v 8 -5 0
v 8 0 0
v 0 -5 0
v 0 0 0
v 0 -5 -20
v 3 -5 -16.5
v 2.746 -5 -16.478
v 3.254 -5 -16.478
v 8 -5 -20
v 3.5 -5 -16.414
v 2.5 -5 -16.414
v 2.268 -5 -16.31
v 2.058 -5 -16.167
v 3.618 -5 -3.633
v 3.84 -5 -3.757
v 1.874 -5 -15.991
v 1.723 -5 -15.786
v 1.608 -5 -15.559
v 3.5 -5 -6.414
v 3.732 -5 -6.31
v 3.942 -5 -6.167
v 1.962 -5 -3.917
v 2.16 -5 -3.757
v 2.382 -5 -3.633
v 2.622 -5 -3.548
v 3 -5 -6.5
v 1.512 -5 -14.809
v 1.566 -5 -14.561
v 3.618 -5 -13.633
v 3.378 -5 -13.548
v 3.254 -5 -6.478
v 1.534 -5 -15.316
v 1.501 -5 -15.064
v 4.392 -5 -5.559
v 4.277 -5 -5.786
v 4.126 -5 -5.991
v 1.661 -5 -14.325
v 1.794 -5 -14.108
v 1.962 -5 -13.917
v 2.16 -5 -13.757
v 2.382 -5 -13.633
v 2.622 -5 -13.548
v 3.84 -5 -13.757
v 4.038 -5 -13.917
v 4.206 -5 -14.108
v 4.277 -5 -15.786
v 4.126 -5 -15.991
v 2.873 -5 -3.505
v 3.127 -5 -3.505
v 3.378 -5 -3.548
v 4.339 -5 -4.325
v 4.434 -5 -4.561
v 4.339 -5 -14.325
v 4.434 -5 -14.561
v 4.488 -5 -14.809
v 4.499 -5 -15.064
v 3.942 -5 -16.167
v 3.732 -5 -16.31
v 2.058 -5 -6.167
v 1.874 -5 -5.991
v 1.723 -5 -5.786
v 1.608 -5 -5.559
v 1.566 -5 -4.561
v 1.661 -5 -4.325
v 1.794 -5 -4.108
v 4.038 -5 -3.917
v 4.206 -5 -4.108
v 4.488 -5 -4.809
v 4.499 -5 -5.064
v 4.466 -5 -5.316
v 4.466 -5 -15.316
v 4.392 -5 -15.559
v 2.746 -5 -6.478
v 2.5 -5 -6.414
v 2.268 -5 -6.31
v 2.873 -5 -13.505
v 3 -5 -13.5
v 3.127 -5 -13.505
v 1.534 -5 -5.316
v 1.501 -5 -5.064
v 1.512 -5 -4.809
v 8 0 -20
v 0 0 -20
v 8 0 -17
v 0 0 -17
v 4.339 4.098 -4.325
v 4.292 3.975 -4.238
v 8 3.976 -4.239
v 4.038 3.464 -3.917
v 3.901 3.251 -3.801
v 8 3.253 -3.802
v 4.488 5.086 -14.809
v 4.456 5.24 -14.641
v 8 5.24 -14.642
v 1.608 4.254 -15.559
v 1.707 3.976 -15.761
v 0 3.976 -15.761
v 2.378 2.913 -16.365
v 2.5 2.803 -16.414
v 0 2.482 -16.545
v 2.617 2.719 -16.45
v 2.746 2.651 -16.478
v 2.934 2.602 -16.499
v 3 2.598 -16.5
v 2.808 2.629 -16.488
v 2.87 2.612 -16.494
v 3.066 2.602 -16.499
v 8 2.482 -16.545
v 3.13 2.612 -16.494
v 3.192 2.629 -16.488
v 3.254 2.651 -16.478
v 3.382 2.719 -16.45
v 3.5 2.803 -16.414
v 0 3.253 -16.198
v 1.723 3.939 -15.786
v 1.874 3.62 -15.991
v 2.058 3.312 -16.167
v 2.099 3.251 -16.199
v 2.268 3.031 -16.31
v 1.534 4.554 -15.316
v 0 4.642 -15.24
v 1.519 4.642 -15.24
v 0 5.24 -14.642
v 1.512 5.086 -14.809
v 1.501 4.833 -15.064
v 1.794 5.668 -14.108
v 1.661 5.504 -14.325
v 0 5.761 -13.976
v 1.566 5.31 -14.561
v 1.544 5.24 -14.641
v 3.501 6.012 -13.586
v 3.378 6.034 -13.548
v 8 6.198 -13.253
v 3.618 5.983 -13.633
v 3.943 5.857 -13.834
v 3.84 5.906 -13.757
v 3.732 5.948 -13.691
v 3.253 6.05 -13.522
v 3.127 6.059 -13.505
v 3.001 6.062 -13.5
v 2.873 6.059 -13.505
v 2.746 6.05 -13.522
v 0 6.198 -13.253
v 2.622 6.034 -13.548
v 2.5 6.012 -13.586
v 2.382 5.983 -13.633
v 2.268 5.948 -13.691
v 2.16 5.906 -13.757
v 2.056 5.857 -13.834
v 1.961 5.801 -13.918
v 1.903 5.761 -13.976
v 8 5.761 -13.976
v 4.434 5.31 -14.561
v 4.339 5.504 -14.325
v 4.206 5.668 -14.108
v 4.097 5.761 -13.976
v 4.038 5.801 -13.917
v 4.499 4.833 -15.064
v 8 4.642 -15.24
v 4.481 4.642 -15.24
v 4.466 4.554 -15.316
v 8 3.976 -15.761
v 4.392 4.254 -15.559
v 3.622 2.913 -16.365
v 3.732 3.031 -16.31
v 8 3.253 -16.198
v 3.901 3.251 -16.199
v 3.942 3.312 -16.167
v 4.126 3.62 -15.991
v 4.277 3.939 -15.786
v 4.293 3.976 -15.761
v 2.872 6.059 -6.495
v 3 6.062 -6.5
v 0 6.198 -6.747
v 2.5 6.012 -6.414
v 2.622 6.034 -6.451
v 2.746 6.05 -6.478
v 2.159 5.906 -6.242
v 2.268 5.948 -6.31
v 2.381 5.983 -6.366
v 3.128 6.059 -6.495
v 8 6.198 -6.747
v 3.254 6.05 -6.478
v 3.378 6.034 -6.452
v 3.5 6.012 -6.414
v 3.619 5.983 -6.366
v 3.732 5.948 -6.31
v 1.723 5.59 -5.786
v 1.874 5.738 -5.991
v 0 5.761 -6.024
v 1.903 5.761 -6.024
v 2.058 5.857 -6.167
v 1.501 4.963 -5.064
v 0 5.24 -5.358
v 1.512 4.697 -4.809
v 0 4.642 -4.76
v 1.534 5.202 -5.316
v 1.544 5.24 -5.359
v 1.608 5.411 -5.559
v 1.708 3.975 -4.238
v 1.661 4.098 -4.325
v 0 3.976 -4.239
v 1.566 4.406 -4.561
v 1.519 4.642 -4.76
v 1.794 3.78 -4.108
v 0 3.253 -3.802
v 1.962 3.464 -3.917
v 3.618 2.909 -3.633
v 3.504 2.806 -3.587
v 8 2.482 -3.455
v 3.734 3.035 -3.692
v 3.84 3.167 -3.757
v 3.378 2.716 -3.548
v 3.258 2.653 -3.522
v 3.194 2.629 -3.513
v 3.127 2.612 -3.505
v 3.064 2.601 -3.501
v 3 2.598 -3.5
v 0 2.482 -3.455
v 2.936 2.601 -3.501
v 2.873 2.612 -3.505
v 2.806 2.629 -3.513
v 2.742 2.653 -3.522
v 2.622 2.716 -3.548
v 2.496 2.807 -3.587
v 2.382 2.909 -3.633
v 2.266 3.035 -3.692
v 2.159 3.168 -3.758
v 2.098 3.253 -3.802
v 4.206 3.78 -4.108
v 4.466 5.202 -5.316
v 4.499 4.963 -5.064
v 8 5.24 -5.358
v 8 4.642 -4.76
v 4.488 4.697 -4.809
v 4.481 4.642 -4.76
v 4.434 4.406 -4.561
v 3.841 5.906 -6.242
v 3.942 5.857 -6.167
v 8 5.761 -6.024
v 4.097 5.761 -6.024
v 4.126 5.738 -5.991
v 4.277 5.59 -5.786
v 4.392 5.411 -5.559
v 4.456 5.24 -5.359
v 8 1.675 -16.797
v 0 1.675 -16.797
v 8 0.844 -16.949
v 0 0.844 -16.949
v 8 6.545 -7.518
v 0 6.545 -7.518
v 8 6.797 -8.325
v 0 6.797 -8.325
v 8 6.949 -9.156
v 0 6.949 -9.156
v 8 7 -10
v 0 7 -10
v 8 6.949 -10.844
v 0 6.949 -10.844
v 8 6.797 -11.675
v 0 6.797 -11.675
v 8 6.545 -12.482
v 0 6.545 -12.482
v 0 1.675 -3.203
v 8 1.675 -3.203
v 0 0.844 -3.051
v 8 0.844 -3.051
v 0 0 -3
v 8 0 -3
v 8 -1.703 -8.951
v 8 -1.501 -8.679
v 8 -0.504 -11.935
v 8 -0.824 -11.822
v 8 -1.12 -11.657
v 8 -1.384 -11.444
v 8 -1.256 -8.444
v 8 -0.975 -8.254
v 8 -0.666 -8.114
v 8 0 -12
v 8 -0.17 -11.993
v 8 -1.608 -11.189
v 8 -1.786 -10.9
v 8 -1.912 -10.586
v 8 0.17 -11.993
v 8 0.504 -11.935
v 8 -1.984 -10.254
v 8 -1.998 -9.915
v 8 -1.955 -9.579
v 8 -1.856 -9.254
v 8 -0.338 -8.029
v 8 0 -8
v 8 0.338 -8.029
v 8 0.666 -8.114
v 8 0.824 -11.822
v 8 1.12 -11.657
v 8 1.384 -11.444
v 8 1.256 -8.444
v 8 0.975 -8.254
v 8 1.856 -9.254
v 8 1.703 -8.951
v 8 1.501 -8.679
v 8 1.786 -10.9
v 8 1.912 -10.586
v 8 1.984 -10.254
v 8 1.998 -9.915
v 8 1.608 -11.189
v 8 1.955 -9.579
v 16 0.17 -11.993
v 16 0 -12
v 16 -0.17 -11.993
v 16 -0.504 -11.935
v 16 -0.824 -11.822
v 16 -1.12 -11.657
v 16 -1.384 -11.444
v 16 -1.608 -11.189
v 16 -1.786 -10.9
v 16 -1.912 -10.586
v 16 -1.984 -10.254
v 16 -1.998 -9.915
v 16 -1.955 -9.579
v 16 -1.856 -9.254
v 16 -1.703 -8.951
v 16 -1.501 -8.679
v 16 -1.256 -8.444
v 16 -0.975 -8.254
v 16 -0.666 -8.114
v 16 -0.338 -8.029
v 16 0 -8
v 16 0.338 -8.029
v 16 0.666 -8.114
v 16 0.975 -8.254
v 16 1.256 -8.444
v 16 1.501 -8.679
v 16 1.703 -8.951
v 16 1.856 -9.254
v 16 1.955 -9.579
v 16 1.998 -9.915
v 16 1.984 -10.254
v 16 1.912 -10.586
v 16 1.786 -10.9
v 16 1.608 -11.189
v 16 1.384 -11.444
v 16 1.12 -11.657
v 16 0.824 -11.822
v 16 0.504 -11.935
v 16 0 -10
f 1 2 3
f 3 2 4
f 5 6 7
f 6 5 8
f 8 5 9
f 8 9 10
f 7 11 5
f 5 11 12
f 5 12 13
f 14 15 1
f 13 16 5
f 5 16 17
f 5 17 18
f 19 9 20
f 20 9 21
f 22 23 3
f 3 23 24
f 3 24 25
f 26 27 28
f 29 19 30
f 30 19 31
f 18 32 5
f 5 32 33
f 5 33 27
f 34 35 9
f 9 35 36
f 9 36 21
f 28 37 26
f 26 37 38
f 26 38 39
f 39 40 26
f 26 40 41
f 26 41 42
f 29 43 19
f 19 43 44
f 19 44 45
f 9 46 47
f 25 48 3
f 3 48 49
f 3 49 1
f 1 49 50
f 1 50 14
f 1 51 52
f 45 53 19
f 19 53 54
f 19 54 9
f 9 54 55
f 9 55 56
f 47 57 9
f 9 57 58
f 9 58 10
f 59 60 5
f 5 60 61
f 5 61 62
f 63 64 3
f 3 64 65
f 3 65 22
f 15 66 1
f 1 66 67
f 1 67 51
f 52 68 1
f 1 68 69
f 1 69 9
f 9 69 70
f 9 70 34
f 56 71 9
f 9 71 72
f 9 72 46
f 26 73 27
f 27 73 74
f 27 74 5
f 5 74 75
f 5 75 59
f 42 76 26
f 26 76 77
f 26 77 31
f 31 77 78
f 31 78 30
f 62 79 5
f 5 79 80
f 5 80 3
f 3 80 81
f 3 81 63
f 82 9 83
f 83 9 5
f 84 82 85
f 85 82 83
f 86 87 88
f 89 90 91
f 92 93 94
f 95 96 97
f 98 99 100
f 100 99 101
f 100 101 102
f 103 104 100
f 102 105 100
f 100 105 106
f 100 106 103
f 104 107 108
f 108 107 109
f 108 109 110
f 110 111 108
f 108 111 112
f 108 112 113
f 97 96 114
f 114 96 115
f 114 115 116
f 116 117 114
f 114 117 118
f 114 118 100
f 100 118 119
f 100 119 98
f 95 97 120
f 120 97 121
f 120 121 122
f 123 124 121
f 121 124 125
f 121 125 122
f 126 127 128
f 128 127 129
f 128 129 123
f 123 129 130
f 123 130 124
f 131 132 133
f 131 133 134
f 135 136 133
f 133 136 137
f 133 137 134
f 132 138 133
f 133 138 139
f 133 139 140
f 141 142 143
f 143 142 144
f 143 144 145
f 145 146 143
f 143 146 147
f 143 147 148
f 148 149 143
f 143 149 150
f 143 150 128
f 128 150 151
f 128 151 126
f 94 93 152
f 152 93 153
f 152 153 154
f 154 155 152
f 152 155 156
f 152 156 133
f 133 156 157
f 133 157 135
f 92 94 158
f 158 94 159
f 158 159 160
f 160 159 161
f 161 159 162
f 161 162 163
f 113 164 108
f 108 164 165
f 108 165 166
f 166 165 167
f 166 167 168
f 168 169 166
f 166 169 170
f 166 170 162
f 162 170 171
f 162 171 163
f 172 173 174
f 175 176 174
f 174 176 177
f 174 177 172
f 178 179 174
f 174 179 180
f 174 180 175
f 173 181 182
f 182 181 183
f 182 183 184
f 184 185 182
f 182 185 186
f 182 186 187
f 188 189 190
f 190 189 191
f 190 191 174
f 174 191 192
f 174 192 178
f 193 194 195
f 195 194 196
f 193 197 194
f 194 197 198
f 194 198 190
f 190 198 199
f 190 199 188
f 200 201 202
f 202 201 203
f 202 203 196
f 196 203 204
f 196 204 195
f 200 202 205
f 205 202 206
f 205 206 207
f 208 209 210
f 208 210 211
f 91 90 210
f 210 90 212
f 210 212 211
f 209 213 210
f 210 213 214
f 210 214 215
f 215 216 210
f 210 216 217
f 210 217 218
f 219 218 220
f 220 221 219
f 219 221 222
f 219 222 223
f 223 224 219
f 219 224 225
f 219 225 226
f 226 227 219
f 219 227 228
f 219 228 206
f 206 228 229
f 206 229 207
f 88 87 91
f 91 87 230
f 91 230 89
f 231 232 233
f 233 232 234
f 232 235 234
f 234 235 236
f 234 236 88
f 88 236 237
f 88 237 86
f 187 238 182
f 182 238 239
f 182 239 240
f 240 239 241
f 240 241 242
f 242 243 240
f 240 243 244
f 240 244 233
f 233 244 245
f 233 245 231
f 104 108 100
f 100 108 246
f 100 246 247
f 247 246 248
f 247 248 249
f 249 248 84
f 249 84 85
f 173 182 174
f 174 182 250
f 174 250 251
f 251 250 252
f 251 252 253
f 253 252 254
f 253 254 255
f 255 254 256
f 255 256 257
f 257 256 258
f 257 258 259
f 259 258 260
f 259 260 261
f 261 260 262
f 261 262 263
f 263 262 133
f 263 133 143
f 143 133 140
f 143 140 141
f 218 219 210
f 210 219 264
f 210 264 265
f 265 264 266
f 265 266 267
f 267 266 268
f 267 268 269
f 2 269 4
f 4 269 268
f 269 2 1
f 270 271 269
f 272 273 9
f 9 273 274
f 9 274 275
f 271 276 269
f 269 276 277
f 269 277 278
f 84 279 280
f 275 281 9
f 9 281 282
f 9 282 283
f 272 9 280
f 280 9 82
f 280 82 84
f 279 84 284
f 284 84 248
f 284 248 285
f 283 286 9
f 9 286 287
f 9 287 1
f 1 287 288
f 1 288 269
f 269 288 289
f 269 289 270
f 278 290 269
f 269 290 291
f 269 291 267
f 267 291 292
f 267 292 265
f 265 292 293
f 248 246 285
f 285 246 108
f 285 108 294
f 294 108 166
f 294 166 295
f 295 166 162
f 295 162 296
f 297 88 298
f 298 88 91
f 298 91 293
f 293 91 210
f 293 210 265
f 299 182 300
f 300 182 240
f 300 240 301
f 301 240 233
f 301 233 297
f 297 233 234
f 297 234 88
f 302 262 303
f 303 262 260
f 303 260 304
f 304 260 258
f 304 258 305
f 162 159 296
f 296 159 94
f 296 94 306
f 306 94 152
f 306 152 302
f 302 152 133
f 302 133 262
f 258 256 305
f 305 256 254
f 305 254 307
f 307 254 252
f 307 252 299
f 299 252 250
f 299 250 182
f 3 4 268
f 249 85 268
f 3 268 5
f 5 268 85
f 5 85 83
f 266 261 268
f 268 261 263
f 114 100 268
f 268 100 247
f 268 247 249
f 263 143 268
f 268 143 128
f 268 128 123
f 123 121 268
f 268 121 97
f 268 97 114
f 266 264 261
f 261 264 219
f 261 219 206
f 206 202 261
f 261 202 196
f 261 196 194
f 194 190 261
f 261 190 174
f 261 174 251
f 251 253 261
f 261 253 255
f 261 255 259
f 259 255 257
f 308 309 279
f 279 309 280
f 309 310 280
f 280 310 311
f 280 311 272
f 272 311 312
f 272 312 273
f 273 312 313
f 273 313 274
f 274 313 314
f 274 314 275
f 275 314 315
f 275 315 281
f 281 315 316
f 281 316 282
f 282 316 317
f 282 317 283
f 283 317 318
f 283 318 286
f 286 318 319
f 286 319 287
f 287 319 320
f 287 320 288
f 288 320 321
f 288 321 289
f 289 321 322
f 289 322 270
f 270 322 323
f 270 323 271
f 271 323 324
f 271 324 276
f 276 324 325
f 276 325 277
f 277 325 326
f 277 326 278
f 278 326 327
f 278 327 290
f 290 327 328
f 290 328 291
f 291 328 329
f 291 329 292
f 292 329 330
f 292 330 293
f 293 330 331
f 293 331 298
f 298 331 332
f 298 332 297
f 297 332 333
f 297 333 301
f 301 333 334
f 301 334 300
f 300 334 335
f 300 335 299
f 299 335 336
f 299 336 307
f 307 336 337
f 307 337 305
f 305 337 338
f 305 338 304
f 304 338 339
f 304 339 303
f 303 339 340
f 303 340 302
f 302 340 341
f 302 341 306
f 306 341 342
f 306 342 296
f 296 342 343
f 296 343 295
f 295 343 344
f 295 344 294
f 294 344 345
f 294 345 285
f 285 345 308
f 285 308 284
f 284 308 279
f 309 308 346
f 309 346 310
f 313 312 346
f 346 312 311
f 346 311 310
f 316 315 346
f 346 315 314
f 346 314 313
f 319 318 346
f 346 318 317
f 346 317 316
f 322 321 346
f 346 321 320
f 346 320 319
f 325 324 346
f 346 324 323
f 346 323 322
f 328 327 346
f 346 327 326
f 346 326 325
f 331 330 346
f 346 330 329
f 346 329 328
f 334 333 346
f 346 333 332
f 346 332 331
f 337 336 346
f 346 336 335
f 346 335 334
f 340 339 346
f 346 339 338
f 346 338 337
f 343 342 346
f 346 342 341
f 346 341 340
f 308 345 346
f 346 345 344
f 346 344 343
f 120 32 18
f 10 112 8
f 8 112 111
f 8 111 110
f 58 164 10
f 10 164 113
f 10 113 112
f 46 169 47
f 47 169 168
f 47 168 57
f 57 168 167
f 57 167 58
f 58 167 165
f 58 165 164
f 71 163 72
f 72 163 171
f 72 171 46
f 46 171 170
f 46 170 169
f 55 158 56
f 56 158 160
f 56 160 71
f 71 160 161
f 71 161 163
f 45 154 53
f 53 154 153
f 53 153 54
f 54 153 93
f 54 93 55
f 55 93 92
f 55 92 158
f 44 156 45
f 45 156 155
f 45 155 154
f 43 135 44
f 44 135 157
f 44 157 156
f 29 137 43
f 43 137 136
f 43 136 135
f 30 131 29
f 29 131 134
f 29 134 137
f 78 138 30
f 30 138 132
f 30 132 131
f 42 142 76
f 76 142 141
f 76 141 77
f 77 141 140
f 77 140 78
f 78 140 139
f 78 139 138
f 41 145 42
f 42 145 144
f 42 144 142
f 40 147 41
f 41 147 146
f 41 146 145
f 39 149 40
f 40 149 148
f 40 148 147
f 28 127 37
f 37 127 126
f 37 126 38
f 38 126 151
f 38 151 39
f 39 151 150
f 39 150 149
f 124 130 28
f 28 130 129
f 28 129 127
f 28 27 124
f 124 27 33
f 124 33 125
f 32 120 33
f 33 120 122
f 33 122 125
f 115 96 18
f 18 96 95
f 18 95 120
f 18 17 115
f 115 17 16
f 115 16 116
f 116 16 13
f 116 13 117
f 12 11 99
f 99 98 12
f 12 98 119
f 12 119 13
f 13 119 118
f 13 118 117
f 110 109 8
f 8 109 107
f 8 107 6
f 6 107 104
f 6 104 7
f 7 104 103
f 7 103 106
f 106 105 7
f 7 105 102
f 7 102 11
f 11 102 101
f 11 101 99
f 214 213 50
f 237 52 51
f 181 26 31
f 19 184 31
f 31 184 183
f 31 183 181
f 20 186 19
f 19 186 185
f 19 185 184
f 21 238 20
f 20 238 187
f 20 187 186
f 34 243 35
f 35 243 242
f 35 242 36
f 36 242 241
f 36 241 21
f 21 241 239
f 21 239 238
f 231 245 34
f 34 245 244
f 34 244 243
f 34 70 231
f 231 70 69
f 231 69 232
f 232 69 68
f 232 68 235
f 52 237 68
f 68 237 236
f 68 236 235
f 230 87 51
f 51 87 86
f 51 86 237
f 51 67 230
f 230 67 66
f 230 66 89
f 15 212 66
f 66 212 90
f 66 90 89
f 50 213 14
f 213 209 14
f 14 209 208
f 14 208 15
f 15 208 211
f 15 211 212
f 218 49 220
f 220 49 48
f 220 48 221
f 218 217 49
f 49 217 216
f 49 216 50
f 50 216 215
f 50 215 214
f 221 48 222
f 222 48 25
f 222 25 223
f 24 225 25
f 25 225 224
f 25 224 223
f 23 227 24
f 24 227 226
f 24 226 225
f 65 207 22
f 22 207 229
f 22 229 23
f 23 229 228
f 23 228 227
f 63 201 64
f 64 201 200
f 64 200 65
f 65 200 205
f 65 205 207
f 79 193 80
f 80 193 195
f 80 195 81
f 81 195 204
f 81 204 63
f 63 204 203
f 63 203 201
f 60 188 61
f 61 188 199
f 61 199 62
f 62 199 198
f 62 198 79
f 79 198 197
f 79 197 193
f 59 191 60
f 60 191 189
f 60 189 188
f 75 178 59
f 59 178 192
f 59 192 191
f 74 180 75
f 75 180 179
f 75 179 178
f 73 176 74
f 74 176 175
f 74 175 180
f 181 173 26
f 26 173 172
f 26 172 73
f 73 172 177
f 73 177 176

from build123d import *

# Parameters (mm, degrees)
BOSS_EXTRUDE1_DEPTH = 8
SKETCH2_R           = 2
BOSS_EXTRUDE2_DEPTH = 8
SKETCH3_R           = 1.5
CUT_EXTRUDE1_DEPTH  = 15


with BuildPart() as part:
    # Sketch1 → Boss-Extrude1 (new body)
    with BuildSketch(Plane(origin=(0, 0, 0), x_dir=(0, 0, -1), z_dir=(1, 0, 0))):
        with BuildLine():
            Line((17, 0), (20, 0))
            Line((20, 0), (20, -5))
            Line((20, -5), (0, -5))
            Line((0, -5), (0, 0))
            Line((0, 0), (3, 0))
            ThreePointArc((3, 0), (10, 7), (17, 0))
        make_face()
    extrude(amount=BOSS_EXTRUDE1_DEPTH)

    # Sketch2 → Boss-Extrude2 (add)
    with BuildSketch(Plane(origin=(8, 0, 0), x_dir=(0, 0, -1), z_dir=(1, 0, 0))):
        with Locations((10, 0)):
            Circle(SKETCH2_R)
    extrude(amount=BOSS_EXTRUDE2_DEPTH)

    # Sketch3 → Cut-Extrude1 (cut)
    with BuildSketch(Plane.XZ.offset(5)):
        with Locations(Location((3, -5, 0), (0, 0, 270))):
            Circle(SKETCH3_R)
        with Locations(Location((3, -15, 0), (0, 0, 270))):
            Circle(SKETCH3_R)
    extrude(amount=-CUT_EXTRUDE1_DEPTH, mode=Mode.SUBTRACT)


solid = part.part
